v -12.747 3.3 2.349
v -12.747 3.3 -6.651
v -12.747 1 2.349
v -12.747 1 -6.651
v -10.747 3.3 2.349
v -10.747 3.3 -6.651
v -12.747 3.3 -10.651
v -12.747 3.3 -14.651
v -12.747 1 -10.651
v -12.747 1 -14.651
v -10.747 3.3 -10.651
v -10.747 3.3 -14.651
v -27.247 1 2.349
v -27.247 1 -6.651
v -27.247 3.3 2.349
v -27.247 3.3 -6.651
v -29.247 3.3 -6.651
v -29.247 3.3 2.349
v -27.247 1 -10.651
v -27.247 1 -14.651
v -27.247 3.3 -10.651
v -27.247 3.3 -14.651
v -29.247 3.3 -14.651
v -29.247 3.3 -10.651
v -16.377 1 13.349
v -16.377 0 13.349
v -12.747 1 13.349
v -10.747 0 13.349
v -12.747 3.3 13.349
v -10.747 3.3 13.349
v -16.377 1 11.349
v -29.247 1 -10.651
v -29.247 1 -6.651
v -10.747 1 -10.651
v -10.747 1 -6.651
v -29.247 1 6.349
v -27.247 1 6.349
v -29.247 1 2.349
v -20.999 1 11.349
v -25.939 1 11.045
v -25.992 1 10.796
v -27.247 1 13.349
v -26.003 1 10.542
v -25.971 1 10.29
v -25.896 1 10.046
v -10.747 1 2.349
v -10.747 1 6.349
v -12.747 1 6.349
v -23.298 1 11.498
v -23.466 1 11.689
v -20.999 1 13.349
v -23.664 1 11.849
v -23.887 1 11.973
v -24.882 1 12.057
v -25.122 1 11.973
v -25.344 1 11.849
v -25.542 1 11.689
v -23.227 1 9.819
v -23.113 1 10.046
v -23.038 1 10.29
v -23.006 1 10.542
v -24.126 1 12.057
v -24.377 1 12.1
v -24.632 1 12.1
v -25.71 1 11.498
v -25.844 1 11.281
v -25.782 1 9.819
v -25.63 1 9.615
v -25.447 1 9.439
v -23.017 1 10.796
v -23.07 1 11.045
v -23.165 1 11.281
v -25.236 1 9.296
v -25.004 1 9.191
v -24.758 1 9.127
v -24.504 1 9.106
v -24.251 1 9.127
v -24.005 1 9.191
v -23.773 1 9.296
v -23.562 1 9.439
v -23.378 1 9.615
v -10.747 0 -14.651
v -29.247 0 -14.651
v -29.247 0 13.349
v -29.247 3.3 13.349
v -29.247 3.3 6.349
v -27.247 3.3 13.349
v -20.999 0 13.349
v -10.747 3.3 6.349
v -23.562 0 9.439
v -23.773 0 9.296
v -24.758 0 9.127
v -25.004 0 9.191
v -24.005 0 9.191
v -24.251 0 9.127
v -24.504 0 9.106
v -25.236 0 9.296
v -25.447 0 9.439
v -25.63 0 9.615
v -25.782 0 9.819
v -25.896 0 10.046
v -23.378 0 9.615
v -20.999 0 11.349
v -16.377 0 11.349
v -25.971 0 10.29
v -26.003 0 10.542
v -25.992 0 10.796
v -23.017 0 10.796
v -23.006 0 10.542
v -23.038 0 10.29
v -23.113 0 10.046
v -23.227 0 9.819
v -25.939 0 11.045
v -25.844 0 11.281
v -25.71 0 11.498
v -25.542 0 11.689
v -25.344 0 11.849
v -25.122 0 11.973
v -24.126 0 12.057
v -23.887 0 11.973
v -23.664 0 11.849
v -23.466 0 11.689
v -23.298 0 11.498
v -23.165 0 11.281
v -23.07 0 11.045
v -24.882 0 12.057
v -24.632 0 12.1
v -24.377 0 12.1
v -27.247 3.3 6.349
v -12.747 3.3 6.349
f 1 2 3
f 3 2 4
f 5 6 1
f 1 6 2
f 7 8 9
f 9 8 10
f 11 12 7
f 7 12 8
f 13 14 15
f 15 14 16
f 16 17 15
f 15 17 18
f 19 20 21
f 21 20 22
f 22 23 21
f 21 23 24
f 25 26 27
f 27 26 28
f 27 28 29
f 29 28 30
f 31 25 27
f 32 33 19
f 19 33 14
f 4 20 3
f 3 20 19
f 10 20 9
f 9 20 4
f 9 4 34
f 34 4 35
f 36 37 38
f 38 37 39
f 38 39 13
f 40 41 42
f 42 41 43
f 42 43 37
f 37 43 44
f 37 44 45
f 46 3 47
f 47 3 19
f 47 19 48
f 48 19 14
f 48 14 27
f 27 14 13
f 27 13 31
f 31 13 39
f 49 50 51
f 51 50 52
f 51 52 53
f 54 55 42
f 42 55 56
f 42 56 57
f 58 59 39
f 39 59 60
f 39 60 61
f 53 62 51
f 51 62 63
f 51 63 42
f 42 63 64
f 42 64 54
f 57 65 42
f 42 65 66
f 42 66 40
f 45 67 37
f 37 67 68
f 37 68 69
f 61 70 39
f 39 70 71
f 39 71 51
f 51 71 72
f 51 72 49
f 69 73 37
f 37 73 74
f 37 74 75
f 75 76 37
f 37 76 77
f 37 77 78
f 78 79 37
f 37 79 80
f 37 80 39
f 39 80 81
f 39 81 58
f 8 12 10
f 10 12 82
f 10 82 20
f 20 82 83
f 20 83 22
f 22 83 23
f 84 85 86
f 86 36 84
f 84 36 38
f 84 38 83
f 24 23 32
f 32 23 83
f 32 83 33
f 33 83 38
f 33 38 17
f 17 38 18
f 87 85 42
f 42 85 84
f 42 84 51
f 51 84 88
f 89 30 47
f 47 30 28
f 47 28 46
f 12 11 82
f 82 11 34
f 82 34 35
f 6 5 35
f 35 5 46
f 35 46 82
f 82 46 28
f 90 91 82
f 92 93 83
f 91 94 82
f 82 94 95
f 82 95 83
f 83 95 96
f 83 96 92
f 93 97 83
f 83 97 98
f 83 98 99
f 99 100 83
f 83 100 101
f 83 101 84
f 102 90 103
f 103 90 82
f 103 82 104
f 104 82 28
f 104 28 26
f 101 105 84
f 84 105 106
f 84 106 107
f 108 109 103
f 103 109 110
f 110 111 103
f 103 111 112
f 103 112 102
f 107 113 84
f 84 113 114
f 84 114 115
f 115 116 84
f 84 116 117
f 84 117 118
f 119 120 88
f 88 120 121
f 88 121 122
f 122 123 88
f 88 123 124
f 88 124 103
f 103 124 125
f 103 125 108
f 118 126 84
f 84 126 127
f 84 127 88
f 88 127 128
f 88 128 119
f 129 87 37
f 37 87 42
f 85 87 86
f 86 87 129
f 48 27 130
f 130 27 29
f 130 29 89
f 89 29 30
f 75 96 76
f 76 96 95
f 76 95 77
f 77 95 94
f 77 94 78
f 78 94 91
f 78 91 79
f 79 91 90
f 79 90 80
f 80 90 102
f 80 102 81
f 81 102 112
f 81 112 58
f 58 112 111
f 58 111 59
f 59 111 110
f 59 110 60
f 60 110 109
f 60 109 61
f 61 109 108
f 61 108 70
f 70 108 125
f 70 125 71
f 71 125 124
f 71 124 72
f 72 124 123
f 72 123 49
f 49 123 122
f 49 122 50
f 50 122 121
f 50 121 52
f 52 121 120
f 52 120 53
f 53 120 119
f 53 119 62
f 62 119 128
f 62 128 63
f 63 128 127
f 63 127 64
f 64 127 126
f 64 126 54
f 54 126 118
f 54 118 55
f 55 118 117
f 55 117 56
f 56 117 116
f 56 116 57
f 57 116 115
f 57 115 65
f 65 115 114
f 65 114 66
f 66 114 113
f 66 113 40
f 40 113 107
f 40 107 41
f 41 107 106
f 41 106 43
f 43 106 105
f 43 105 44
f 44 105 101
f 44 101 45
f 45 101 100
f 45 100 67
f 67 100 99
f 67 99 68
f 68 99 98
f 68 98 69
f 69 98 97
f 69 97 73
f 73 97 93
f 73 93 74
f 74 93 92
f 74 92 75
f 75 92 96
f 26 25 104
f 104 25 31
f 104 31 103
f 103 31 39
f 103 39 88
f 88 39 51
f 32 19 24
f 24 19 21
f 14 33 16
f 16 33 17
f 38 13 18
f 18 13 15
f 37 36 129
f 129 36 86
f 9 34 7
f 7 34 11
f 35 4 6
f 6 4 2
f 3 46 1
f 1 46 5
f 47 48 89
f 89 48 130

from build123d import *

# Parameters (mm, degrees)
MAIN_BOARD_OUTLINE_W = 18.5
MAIN_BOARD_OUTLINE_H = 28
SIDE1_DEPTH          = 1
SKETCH2_W            = 2
SKETCH2_H            = 28
WALLS_DEPTH          = 2.3
SKETCH3_R            = 1.5
SCREW_HOLE_DEPTH     = 2.3
SKETCH4_W            = 4.6228
SKETCH4_H            = 2
SPI_HOLE_DEPTH       = 2.3
SKETCH5_W            = 2
SKETCH5_H            = 4
CUT_EXTRUDE3_DEPTH   = 2.3


with BuildPart() as part:
    # main board outline → side1 (new body)
    with BuildSketch(Plane(origin=(0, 0, 0), x_dir=(1, 0, 0), z_dir=(0, 1, 0))):
        with Locations((-19.997374583, 0.651042113)):
            Rectangle(MAIN_BOARD_OUTLINE_W, MAIN_BOARD_OUTLINE_H)
    extrude(amount=SIDE1_DEPTH)

    # Sketch2 → walls (add)
    with BuildSketch(Plane(origin=(0, 1, 0), x_dir=(1, 0, 0), z_dir=(0, 1, 0))):
        with Locations((-28.247374583, 0.651042113)):
            Rectangle(SKETCH2_W, SKETCH2_H)
        with Locations((-11.747374583, 0.651042113)):
            Rectangle(SKETCH2_W, SKETCH2_H)
    extrude(amount=WALLS_DEPTH)

    # Sketch3 → screw hole (cut)
    with BuildSketch(Plane(origin=(0, 0, 0), x_dir=(-1, 0, 0), z_dir=(0, -1, 0))):
        with Locations((24.504374583, -10.605757887)):
            Circle(SKETCH3_R)
    extrude(amount=-SCREW_HOLE_DEPTH, mode=Mode.SUBTRACT)

    # Sketch4 → spi hole (cut)
    with BuildSketch(Plane(origin=(0, 0, 0), x_dir=(-1, 0, 0), z_dir=(0, -1, 0))):
        with Locations((18.687974583, -12.348957887)):
            Rectangle(SKETCH4_W, SKETCH4_H)
    extrude(amount=-SPI_HOLE_DEPTH, mode=Mode.SUBTRACT)

    # Sketch5 → Cut-Extrude3 (cut)
    with BuildSketch(Plane(origin=(0, 3.3, 0), x_dir=(1, 0, 0), z_dir=(0, 1, 0))):
        with Locations((-28.247374583, 8.651042113)):
            Rectangle(SKETCH5_W, SKETCH5_H)
        with Locations((-28.247374583, -4.348957887)):
            Rectangle(SKETCH5_W, SKETCH5_H)
        with Locations((-11.747374583, 8.651042113)):
            Rectangle(SKETCH5_W, SKETCH5_H)
        with Locations((-11.747374583, -4.348957887)):
            Rectangle(SKETCH5_W, SKETCH5_H)
    extrude(amount=-CUT_EXTRUDE3_DEPTH, mode=Mode.SUBTRACT)


solid = part.part
